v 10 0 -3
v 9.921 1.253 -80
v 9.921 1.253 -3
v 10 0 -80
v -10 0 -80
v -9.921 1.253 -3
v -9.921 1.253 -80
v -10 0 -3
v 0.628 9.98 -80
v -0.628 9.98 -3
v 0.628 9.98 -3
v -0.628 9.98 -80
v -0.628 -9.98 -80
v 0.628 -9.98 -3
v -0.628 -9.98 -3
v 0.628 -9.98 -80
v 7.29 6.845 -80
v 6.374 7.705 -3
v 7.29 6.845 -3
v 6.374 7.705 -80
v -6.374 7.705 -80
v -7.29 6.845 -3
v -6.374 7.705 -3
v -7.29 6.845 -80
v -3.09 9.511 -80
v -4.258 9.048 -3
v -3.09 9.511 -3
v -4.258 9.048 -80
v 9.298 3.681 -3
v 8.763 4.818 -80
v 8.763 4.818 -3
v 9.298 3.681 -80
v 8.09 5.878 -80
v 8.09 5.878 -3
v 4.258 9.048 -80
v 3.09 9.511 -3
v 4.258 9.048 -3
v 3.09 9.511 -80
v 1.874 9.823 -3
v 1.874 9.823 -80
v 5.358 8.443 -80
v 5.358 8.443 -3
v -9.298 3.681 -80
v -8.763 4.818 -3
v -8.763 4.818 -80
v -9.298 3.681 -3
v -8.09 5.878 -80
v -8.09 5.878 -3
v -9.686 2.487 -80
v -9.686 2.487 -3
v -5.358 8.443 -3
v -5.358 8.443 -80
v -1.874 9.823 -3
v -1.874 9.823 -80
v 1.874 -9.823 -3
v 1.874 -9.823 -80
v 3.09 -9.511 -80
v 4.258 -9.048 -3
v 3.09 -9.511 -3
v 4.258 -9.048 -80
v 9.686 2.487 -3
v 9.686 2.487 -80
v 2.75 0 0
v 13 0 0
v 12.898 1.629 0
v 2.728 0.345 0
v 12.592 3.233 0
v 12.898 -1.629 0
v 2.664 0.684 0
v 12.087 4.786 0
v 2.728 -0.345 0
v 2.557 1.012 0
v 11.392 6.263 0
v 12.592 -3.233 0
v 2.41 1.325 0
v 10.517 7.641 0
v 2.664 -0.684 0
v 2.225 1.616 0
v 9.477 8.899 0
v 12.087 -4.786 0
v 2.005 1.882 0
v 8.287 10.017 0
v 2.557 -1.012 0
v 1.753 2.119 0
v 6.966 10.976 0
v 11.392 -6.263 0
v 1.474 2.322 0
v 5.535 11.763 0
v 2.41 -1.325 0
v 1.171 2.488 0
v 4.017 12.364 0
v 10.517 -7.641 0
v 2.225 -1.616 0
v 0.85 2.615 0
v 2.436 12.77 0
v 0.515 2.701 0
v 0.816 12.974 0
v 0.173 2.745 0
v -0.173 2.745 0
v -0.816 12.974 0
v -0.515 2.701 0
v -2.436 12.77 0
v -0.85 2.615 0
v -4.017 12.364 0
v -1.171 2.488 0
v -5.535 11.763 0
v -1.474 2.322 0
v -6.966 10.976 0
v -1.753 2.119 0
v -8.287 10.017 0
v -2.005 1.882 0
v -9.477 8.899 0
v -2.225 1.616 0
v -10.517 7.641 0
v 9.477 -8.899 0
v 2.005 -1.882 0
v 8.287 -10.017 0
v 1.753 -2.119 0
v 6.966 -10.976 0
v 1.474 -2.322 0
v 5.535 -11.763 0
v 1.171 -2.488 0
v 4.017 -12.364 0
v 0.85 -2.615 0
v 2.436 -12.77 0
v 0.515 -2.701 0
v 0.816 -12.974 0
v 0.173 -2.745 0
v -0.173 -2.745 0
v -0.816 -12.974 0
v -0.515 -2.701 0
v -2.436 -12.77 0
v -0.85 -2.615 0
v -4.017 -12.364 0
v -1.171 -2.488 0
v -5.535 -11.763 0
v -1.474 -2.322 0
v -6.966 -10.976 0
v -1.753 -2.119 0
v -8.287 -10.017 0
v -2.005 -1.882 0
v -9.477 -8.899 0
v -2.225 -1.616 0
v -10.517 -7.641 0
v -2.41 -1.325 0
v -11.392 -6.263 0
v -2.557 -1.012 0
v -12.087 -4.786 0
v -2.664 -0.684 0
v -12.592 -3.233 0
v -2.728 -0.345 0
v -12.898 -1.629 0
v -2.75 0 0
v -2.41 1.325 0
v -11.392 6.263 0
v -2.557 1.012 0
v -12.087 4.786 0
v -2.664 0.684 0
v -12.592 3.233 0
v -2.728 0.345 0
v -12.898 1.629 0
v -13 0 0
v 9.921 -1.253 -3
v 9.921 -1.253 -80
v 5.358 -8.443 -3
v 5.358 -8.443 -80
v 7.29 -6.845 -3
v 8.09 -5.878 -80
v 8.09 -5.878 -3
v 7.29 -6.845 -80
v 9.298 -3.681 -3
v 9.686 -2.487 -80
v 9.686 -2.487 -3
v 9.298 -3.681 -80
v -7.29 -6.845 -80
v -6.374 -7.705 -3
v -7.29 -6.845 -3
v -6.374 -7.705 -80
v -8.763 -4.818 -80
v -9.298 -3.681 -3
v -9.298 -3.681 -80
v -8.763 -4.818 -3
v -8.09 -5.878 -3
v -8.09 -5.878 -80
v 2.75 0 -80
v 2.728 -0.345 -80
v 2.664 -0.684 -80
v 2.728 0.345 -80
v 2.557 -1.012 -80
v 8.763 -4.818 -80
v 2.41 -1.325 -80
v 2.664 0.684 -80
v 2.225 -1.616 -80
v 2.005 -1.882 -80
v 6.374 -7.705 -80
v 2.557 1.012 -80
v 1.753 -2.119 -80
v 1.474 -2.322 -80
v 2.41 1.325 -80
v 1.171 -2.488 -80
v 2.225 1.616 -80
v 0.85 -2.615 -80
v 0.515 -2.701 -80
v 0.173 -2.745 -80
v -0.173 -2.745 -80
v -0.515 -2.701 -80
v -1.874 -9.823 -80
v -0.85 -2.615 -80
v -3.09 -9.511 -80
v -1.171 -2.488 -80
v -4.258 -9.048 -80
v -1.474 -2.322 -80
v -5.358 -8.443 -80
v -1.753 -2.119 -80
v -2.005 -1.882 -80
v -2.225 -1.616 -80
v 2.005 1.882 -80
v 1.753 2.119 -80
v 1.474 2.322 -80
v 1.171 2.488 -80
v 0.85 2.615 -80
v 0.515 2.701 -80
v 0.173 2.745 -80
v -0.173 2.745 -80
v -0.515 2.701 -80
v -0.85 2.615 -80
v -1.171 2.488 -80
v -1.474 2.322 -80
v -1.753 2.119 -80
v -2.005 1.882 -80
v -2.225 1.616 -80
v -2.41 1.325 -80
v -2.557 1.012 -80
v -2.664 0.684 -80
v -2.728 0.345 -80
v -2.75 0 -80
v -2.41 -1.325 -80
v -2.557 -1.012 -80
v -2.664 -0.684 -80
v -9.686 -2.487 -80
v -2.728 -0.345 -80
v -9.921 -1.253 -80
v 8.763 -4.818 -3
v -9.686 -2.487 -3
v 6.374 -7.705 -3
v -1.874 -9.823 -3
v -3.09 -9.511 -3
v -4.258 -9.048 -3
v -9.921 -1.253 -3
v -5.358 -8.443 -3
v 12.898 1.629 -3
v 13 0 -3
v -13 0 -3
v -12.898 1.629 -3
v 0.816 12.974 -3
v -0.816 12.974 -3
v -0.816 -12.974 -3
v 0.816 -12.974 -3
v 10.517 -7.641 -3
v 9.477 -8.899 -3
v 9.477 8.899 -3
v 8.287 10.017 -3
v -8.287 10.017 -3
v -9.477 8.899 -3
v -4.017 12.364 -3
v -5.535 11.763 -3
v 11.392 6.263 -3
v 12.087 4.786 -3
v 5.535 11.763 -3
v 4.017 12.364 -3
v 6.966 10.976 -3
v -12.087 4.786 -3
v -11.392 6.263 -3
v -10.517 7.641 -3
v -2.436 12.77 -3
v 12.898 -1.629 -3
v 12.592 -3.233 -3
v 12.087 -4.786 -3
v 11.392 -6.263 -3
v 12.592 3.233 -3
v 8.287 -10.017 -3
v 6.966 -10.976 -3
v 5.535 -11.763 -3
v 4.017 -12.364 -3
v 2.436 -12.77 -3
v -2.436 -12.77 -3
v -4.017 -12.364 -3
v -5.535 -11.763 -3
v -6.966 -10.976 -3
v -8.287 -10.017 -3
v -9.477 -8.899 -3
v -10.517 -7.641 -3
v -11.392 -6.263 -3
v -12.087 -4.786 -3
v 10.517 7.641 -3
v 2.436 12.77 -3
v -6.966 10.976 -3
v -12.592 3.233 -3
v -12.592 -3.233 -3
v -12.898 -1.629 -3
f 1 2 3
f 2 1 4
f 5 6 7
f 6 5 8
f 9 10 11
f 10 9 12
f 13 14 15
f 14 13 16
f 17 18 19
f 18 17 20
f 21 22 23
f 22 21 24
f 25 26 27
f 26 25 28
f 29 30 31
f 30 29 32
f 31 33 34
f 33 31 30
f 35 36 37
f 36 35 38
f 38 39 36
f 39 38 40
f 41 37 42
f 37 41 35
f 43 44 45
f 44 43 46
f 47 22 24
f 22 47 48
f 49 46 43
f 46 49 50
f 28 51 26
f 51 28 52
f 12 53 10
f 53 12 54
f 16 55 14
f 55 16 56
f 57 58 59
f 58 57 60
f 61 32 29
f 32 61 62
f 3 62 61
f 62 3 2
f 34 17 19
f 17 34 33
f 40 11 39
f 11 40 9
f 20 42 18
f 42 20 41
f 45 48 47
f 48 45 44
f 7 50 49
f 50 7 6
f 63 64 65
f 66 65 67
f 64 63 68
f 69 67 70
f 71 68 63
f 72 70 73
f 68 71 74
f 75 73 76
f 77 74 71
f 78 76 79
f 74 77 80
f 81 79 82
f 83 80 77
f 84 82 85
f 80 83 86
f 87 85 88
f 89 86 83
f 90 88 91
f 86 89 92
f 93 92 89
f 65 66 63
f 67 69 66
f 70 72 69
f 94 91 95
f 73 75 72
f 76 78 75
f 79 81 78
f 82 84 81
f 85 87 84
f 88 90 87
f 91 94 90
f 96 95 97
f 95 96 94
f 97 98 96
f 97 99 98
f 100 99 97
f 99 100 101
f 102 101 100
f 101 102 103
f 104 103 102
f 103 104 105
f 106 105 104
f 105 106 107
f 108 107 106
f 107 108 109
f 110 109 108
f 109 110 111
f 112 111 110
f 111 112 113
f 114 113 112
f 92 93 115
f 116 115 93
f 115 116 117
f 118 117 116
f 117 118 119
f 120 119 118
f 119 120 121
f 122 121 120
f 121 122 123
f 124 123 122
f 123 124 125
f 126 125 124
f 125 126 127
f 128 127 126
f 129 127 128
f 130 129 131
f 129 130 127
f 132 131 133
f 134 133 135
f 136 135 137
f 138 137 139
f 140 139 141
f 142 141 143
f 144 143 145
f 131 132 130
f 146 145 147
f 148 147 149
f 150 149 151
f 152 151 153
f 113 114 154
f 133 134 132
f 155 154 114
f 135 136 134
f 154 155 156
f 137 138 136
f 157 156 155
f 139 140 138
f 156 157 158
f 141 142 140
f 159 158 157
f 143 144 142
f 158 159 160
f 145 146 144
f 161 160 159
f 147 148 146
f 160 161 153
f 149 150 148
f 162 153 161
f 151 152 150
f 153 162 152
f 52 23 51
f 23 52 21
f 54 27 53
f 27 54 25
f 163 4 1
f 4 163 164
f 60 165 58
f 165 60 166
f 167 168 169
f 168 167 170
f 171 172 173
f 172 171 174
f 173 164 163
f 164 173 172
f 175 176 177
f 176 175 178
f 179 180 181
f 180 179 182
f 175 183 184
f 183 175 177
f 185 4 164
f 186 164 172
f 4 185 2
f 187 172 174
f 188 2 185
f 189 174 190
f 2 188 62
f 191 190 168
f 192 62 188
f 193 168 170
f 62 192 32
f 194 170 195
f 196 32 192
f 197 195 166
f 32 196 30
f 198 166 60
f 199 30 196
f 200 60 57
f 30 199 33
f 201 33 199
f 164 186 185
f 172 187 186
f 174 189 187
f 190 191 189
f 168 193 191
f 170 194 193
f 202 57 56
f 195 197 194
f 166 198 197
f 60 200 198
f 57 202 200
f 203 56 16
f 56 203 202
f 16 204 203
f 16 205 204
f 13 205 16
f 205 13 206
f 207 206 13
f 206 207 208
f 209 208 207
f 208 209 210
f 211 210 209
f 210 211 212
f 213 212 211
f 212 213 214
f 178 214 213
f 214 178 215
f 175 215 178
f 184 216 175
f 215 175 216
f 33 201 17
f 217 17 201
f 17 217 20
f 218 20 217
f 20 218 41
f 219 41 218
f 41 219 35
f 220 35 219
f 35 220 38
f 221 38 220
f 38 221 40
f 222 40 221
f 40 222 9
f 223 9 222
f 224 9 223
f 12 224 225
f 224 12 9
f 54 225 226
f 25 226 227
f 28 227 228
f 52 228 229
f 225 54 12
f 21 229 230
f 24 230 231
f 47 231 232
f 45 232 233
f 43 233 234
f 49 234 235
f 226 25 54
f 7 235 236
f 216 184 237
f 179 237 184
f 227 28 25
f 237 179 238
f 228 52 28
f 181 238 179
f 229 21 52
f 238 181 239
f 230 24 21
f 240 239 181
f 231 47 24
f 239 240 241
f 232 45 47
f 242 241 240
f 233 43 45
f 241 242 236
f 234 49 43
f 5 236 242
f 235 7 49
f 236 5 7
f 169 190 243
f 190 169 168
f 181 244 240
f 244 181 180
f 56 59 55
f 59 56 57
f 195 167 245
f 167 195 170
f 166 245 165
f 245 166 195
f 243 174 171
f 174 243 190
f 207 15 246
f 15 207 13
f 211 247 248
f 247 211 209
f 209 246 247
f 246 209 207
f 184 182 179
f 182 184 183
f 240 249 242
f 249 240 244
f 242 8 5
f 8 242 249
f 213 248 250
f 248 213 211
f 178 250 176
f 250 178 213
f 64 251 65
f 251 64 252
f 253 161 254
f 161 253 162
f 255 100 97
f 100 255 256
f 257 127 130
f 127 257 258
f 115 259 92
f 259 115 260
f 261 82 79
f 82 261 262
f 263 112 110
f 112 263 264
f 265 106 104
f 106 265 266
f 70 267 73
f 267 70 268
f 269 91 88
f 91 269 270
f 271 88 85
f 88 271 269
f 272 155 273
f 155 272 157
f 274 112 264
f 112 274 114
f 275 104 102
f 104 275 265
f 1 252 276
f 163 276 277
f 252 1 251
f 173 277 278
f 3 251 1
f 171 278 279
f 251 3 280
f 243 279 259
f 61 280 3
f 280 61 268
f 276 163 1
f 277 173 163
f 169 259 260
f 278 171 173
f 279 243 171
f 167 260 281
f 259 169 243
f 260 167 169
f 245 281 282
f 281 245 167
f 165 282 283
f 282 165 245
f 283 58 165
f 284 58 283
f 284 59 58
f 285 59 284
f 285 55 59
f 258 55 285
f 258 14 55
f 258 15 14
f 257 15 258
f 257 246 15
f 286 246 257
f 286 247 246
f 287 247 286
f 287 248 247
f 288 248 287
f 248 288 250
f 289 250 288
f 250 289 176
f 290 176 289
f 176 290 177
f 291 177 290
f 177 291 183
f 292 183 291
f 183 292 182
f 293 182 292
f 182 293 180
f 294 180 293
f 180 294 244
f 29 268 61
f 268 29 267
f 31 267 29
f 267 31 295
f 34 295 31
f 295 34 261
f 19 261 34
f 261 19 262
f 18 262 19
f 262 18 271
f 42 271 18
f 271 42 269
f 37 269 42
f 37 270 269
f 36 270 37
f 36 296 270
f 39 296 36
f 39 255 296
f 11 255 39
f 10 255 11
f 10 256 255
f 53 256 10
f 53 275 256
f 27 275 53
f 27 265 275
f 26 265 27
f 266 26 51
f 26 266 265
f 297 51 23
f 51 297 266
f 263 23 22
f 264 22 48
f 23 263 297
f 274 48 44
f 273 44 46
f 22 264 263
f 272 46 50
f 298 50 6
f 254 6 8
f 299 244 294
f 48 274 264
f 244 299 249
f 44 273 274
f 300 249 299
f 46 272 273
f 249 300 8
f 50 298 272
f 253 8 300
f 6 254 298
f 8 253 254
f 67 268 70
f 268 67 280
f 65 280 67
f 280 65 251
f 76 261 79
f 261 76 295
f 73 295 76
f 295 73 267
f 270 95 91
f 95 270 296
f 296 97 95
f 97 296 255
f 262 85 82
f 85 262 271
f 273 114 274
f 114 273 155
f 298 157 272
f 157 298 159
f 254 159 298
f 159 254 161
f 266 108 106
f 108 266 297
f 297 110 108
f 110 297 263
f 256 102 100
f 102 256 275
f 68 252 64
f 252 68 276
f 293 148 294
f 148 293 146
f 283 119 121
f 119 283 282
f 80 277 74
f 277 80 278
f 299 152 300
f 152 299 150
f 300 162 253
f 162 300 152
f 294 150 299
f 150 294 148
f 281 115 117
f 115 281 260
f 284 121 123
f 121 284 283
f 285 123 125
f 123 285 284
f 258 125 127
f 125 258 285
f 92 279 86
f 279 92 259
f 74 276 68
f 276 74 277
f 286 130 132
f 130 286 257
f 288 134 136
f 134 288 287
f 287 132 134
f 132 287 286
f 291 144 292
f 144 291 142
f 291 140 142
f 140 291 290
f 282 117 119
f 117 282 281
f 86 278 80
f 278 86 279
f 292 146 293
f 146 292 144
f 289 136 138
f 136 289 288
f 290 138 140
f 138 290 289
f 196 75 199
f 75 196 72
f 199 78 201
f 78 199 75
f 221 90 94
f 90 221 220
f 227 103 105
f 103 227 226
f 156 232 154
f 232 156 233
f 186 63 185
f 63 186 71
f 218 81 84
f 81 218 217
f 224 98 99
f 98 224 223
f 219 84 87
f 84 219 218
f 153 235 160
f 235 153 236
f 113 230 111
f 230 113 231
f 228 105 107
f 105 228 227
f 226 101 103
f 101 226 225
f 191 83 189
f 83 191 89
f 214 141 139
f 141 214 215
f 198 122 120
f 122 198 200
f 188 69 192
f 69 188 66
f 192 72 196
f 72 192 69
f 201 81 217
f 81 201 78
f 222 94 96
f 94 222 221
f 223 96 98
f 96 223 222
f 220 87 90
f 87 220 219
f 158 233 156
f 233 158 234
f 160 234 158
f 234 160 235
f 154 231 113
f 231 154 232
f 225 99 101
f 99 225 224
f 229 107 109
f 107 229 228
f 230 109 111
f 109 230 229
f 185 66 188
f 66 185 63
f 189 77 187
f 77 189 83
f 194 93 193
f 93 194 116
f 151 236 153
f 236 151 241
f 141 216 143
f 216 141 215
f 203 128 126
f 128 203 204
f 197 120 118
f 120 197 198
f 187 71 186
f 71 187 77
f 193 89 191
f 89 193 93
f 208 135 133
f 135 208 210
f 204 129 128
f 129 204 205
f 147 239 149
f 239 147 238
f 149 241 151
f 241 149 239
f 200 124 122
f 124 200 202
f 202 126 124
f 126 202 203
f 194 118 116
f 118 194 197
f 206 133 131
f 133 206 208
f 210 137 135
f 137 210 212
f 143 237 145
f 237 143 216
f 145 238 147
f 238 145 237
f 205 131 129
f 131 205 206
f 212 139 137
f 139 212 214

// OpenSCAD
$fn = 50;


difference() {
	union() {
		translate(v = [0, 0, -80.0000000000]) {
			cylinder(h = 80, r = 10.0000000000);
		}
		translate(v = [0, 0, -3.0000000000]) {
			cylinder(h = 3, r = 13.0000000000);
		}
	}
	union() {
		#translate(v = [0, 0, -80]) {
			cylinder(h = 80, r = 2.7500000000);
		}
	}
}
